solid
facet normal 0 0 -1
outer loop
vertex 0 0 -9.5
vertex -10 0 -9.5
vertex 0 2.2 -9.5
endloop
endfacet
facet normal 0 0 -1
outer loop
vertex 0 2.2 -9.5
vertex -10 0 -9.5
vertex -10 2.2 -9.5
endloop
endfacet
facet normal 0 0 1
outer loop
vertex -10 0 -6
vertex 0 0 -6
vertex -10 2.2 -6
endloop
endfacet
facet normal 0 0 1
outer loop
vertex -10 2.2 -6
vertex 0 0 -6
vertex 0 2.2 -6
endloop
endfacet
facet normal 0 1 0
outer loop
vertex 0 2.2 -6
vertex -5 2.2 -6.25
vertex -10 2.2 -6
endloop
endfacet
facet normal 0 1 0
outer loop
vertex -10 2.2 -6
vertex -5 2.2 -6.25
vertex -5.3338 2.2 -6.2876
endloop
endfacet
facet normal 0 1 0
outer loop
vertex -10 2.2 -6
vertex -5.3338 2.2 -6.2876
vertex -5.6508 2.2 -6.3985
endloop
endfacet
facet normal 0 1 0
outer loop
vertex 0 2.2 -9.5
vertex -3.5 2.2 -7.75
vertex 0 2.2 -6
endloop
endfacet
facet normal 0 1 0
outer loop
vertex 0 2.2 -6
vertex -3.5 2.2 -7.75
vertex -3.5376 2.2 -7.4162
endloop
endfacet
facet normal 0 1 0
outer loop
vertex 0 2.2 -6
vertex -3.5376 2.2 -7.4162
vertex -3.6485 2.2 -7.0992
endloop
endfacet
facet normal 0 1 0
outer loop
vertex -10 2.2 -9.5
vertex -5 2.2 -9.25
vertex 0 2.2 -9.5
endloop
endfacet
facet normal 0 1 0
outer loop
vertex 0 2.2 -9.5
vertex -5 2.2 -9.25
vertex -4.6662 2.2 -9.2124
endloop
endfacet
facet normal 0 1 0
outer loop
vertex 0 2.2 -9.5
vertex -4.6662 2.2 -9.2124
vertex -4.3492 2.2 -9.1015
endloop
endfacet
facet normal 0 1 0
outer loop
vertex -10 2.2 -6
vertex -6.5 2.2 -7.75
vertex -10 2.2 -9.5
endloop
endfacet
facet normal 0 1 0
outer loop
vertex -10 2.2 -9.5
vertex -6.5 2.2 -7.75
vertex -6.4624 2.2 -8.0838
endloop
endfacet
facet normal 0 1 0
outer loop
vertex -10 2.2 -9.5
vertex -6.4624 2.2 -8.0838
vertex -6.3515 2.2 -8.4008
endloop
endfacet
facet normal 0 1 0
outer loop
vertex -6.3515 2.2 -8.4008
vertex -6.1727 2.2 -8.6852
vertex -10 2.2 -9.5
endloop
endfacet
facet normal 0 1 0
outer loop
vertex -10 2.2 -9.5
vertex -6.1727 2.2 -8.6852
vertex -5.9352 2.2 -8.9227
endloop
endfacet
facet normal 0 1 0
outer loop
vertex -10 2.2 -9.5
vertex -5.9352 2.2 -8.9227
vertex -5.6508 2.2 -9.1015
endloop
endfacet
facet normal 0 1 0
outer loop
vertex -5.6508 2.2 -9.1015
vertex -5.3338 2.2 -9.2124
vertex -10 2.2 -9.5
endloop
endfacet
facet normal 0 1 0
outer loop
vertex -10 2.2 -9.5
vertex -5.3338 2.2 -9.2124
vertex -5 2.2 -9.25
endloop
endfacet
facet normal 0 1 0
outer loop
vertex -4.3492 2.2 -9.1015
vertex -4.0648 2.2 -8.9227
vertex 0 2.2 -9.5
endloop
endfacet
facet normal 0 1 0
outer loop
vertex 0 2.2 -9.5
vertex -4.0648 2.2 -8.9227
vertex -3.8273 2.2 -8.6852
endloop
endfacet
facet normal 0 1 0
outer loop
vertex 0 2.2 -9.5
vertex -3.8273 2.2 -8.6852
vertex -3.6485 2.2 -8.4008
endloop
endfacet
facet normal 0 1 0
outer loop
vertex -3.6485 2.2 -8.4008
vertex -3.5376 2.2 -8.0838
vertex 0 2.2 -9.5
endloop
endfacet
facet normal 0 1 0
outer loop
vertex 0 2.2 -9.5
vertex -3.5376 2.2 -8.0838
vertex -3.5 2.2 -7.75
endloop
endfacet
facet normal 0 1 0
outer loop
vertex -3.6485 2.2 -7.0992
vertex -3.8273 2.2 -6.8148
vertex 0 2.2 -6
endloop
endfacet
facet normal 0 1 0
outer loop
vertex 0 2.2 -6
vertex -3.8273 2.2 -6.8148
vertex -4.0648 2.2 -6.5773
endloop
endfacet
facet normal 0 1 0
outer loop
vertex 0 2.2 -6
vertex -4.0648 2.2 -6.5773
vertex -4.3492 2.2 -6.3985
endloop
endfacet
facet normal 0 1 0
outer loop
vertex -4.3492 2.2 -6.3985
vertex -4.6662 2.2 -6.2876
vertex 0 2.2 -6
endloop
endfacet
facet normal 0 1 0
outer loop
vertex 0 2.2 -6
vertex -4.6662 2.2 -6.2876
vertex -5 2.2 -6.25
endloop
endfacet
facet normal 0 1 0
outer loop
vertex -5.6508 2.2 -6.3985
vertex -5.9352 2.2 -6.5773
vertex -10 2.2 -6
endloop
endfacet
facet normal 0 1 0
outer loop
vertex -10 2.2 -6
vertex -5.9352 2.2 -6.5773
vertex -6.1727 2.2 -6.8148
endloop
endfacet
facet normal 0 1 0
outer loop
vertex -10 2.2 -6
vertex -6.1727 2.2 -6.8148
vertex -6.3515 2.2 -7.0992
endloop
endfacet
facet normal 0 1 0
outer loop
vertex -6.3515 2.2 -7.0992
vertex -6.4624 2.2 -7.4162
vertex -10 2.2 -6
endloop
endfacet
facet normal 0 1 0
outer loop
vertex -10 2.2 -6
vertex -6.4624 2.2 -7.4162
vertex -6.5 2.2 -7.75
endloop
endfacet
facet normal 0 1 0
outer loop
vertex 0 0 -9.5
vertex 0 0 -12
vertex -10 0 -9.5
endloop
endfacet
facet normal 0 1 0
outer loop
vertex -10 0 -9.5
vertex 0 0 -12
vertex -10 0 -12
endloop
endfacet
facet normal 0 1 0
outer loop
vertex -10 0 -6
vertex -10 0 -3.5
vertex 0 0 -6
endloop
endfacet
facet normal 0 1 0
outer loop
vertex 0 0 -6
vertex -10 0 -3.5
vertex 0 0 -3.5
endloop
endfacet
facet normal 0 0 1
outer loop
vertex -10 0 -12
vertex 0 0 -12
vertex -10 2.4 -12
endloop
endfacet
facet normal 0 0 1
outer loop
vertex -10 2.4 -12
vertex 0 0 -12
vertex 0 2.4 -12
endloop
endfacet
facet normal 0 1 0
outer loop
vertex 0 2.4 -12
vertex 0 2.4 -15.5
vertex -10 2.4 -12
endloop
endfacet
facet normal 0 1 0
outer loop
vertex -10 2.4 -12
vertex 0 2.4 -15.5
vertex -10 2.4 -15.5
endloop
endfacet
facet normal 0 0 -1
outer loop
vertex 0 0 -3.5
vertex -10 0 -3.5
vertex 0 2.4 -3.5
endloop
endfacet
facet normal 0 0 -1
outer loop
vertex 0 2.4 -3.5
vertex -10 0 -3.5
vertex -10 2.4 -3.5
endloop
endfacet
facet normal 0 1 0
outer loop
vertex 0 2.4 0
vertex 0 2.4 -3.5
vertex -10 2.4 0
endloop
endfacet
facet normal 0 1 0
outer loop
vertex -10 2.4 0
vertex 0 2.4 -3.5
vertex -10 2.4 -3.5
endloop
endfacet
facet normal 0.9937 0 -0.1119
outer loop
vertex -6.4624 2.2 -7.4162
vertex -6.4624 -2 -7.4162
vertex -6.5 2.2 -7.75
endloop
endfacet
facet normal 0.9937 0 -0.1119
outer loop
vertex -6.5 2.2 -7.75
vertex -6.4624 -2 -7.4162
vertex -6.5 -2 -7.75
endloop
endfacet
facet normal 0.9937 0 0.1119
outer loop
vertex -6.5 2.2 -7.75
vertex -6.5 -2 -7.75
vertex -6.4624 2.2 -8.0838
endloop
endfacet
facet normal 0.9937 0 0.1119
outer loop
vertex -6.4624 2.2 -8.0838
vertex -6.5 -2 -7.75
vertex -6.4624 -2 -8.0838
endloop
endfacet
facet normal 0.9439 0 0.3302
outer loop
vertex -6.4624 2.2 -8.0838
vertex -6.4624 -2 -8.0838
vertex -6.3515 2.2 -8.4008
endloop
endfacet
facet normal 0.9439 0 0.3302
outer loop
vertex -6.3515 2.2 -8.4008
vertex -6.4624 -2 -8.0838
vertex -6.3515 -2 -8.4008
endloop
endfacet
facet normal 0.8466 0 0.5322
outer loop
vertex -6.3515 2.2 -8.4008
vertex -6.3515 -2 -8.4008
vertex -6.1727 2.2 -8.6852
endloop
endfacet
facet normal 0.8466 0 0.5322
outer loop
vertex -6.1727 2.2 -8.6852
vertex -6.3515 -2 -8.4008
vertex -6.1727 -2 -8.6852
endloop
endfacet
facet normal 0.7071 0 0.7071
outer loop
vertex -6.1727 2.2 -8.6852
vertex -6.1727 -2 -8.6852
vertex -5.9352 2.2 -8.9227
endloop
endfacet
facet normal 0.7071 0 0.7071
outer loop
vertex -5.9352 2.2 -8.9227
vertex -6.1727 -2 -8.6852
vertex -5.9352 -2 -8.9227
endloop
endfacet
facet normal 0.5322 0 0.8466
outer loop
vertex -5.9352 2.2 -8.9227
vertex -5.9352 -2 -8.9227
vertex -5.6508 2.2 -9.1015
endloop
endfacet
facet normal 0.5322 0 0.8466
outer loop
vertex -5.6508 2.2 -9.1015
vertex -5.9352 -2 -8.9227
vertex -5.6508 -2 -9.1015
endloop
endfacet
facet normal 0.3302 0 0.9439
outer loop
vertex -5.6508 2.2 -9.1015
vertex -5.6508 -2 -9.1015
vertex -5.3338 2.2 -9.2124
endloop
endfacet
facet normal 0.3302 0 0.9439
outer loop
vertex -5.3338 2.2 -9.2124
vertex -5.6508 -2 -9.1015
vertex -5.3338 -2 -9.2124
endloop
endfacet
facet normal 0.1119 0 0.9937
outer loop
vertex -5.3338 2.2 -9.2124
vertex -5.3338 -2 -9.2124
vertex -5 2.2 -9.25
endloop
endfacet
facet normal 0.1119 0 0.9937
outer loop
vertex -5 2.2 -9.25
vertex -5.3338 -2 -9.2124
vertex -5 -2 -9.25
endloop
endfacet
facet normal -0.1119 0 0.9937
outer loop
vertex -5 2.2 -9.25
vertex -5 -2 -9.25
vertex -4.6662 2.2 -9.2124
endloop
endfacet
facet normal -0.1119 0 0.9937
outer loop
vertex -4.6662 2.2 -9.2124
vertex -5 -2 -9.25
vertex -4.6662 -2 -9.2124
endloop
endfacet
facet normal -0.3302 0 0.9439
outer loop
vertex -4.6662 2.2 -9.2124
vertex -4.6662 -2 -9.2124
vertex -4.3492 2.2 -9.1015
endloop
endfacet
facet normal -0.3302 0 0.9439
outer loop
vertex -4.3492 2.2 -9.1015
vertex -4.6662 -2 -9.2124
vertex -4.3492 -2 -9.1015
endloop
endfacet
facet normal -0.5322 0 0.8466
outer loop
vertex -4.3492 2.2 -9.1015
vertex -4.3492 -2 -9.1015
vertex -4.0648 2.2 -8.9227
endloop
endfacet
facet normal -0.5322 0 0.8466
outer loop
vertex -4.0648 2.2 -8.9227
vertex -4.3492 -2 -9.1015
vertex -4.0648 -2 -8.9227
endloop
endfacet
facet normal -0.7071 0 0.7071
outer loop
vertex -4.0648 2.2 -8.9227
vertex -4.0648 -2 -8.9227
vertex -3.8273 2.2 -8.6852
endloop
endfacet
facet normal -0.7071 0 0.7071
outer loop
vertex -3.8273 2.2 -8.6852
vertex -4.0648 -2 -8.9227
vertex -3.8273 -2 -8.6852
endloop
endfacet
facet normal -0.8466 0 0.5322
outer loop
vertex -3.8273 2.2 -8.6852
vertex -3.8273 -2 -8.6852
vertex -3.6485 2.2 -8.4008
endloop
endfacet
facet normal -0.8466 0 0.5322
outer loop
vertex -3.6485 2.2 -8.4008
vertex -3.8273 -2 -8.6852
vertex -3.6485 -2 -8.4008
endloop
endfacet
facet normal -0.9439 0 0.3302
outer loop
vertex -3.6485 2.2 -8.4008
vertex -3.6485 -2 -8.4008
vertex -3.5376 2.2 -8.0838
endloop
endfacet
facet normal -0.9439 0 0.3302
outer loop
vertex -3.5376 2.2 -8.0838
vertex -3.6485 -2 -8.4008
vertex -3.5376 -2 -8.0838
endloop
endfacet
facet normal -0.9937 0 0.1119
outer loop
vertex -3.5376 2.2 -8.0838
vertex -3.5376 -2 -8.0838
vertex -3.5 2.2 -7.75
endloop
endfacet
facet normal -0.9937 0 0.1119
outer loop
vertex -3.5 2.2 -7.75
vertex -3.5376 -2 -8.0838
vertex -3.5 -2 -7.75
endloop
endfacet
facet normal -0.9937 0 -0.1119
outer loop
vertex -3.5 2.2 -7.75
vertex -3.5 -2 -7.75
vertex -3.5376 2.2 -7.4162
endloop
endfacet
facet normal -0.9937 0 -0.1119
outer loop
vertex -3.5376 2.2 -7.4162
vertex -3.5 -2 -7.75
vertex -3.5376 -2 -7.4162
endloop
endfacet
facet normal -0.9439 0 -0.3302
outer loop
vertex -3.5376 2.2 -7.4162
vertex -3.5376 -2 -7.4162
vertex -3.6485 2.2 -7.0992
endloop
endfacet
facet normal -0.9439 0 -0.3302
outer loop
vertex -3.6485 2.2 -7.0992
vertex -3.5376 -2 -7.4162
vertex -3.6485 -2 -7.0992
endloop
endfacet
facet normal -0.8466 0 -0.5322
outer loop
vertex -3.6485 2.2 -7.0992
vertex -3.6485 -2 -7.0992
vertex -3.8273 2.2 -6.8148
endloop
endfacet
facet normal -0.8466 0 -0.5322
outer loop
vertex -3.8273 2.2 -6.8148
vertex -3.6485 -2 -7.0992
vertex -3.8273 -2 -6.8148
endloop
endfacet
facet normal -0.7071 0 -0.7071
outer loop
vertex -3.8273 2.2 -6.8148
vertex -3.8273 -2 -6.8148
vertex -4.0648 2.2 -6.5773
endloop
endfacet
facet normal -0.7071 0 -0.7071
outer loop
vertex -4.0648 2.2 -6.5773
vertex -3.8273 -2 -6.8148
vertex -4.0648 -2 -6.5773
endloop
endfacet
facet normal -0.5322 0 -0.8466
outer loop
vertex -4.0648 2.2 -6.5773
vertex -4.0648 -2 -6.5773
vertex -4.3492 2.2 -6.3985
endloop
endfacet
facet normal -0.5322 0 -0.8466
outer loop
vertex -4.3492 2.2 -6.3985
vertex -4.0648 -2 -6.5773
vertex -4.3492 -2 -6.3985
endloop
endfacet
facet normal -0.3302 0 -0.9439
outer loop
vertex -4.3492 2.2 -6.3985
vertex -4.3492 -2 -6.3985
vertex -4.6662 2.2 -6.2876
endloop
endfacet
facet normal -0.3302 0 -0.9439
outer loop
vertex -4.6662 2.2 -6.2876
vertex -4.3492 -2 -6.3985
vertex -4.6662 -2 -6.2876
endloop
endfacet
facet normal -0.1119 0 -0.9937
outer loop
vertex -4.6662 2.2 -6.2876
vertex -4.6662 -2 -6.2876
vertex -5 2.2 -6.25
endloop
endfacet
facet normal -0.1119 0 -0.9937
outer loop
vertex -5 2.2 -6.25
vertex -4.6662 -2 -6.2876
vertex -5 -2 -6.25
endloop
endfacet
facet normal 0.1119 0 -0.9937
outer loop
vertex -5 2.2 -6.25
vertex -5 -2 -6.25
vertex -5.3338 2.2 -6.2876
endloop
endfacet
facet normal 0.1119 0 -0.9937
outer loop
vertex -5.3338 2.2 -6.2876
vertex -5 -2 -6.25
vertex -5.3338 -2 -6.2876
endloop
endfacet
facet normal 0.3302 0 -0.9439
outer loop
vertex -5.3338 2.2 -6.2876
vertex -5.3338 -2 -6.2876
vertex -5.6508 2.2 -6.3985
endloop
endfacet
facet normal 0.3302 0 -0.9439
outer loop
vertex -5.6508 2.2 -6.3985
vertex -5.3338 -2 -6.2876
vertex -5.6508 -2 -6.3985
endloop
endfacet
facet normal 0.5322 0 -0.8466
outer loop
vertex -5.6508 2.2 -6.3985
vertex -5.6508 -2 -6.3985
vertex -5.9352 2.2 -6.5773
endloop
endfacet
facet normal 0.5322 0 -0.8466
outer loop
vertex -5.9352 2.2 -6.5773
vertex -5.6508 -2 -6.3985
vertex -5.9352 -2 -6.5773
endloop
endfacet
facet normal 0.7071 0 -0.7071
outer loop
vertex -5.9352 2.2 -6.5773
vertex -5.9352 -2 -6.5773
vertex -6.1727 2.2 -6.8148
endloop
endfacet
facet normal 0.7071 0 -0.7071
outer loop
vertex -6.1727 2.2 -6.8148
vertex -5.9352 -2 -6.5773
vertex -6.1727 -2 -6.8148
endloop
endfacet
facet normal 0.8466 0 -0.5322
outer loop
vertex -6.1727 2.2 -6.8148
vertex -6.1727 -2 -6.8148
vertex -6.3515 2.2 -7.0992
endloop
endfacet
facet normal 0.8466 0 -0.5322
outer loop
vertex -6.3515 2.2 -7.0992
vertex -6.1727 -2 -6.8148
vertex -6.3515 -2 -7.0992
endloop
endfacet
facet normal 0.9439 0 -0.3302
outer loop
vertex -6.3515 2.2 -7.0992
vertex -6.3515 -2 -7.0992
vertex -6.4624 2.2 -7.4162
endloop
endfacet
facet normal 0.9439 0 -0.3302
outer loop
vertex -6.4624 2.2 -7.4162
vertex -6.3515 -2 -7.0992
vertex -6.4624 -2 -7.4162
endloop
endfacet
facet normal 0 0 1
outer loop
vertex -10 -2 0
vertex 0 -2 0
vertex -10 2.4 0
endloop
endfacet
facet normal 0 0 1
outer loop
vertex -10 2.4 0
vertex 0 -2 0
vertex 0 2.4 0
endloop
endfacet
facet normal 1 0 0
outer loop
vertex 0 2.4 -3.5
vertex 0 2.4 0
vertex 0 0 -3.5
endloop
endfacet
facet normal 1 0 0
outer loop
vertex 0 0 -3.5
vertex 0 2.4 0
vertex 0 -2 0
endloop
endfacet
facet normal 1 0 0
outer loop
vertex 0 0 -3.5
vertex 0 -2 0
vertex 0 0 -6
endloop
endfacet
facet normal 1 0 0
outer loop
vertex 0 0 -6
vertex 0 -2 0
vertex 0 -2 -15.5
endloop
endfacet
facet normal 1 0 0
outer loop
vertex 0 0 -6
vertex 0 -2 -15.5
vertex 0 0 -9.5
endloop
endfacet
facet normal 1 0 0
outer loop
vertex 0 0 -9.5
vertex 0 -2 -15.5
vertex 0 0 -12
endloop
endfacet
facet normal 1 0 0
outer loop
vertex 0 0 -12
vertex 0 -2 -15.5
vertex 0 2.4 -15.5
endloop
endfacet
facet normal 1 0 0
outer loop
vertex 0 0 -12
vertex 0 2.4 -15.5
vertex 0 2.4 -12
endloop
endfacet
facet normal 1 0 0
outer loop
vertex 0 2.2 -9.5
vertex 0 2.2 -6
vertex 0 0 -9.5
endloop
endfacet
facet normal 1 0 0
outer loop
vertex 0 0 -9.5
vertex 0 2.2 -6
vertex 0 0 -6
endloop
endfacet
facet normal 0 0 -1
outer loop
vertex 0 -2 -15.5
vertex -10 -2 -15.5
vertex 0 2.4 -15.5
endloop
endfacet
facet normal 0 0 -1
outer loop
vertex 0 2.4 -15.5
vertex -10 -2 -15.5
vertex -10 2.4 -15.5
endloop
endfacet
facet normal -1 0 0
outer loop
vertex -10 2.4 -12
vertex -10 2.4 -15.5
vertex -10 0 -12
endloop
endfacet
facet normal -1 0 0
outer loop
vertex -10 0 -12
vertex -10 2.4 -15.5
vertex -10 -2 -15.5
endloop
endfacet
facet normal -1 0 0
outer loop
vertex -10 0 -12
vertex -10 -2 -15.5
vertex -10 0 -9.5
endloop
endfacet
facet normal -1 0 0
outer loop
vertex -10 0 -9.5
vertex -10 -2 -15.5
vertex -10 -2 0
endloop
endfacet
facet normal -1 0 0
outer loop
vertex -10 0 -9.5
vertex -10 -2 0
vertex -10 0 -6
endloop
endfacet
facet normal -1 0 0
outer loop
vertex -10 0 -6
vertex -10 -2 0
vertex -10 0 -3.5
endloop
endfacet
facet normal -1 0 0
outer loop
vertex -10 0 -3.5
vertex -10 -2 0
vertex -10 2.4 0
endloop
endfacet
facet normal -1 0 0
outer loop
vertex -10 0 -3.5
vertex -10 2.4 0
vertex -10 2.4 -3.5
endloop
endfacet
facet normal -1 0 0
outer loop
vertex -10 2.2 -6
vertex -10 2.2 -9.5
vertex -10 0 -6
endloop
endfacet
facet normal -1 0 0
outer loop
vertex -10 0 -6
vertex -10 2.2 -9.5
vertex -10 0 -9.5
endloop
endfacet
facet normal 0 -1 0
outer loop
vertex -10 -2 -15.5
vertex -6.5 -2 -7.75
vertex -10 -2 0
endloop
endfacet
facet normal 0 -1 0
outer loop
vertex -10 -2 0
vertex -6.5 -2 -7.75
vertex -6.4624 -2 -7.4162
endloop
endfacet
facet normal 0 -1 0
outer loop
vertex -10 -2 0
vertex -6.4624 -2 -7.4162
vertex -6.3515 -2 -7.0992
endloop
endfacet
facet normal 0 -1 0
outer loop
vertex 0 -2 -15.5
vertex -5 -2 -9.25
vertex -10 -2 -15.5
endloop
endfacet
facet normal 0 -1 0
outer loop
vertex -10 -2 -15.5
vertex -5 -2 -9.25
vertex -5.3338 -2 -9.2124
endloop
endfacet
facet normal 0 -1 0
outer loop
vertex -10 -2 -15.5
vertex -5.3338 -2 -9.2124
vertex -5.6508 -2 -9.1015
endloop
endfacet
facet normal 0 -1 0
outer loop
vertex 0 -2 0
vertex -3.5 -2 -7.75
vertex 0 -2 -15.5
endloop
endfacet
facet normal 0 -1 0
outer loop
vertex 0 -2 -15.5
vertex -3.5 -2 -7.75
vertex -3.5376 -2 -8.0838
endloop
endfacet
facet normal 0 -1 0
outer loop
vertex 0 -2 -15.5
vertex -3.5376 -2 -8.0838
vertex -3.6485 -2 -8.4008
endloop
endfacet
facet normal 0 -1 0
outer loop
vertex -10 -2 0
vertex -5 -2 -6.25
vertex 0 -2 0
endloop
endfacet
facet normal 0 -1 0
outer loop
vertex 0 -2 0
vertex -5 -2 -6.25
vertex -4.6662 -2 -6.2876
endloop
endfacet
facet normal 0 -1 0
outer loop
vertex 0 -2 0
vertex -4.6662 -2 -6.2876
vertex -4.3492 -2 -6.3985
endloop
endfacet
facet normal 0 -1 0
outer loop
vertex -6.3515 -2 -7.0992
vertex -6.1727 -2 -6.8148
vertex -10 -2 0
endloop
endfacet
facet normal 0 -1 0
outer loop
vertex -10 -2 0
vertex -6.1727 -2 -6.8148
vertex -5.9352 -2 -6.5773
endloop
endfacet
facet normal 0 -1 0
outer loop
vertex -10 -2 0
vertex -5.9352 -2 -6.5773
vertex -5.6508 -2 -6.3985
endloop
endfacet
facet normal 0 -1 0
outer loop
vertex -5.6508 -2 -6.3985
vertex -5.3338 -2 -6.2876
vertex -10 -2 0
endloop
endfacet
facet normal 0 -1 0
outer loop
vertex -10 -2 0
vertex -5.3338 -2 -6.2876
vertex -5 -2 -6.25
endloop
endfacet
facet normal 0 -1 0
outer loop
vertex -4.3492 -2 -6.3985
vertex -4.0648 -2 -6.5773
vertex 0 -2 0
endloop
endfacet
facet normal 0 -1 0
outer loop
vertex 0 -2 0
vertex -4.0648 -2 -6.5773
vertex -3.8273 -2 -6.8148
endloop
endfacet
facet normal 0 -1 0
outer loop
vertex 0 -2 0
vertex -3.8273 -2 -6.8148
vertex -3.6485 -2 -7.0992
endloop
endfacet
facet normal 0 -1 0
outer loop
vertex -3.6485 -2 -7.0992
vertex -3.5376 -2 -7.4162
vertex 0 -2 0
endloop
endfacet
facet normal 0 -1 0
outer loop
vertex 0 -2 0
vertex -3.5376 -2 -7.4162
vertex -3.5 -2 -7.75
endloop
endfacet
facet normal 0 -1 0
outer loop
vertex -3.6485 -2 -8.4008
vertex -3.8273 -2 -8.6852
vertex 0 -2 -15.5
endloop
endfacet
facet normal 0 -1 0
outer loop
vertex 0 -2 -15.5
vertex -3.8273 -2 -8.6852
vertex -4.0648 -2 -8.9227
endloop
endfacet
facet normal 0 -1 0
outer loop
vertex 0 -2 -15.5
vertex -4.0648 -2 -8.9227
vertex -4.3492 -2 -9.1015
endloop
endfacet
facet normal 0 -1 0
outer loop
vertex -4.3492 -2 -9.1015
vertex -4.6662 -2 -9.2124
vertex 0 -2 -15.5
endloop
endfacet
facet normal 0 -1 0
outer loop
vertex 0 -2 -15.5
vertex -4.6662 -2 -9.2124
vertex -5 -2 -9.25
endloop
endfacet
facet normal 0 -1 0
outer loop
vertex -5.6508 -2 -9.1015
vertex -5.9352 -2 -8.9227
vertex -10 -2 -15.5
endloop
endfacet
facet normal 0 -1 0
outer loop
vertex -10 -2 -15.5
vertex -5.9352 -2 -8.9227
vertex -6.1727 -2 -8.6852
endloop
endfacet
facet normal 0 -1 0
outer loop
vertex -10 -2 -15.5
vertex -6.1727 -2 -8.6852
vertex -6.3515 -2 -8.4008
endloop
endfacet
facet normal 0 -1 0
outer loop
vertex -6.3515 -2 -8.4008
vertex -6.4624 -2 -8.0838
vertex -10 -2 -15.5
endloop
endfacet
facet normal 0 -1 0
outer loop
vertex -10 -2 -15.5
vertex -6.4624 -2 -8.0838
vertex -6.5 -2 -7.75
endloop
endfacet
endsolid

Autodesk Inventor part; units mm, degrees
ref_plane "YZ Plane" through (0, 0, 0) normal (1, 0, 0) x (0, 1, 0)
ref_plane "XZ Plane" through (0, 0, 0) normal (0, 1, 0) x (-1, 0, 0)
ref_plane "XY Plane" through (0, 0, 0) normal (0, 0, 1) x (1, 0, 0)
sketch "Sketch1" plane through (0, 0, 0) normal (0, 1, 0) x (-1, 0, 0)
  line L0 (0, 0) -> (10, 0)
  line L1 (10, 0) -> (10, -3.5)
  line L2 (10, -3.5) -> (0, -3.5)
  line L3 (0, -3.5) -> (0, 0)
  line L4 (10, -3.5) -> (0, -3.5)
  line L5 (0, -3.5) -> (0, -6)
  line L6 (0, -6) -> (10, -6)
  line L7 (10, -6) -> (10, -3.5)
  line L8 (10, -6) -> (0, -6)
  line L9 (0, -6) -> (0, -9.5)
  line L10 (0, -9.5) -> (10, -9.5)
  line L11 (10, -9.5) -> (10, -6)
  line L12 (10, -9.5) -> (0, -9.5)
  line L13 (0, -9.5) -> (0, -12)
  line L14 (0, -12) -> (10, -12)
  line L15 (10, -12) -> (10, -9.5)
  line L16 (10, -12) -> (0, -12)
  line L17 (0, -12) -> (0, -15.5)
  line L18 (0, -15.5) -> (10, -15.5)
  line L19 (10, -15.5) -> (10, -12)
  line L20 (10, -7.75) -> (5, -7.75)
  circle A0 centre (5, -7.75) radius 1.5
  dimension "d0" = 10
  dimension "d1" = 3.5
  dimension "d2" = 2.5
  dimension "d3" = 10
  dimension "d4" = 3.5
  dimension "d5" = 10
  dimension "d6" = 2.5
  dimension "d7" = 3.5
  dimension "d12" = 5
  dimension "d13" = 3
extrude "Extrusion1" add sketch "Sketch1" against normal blind 2
extrude "Extrusion2" add sketch "Sketch1" along normal blind 2.4 contours L0 L1 L2 L3 | L14 L19 L18 L17
extrude "Extrusion3" add sketch "Sketch1" along normal blind 2.2 contours L6 L11 L10 L9
properties part number "yellow_plate_screw_grip_1"
